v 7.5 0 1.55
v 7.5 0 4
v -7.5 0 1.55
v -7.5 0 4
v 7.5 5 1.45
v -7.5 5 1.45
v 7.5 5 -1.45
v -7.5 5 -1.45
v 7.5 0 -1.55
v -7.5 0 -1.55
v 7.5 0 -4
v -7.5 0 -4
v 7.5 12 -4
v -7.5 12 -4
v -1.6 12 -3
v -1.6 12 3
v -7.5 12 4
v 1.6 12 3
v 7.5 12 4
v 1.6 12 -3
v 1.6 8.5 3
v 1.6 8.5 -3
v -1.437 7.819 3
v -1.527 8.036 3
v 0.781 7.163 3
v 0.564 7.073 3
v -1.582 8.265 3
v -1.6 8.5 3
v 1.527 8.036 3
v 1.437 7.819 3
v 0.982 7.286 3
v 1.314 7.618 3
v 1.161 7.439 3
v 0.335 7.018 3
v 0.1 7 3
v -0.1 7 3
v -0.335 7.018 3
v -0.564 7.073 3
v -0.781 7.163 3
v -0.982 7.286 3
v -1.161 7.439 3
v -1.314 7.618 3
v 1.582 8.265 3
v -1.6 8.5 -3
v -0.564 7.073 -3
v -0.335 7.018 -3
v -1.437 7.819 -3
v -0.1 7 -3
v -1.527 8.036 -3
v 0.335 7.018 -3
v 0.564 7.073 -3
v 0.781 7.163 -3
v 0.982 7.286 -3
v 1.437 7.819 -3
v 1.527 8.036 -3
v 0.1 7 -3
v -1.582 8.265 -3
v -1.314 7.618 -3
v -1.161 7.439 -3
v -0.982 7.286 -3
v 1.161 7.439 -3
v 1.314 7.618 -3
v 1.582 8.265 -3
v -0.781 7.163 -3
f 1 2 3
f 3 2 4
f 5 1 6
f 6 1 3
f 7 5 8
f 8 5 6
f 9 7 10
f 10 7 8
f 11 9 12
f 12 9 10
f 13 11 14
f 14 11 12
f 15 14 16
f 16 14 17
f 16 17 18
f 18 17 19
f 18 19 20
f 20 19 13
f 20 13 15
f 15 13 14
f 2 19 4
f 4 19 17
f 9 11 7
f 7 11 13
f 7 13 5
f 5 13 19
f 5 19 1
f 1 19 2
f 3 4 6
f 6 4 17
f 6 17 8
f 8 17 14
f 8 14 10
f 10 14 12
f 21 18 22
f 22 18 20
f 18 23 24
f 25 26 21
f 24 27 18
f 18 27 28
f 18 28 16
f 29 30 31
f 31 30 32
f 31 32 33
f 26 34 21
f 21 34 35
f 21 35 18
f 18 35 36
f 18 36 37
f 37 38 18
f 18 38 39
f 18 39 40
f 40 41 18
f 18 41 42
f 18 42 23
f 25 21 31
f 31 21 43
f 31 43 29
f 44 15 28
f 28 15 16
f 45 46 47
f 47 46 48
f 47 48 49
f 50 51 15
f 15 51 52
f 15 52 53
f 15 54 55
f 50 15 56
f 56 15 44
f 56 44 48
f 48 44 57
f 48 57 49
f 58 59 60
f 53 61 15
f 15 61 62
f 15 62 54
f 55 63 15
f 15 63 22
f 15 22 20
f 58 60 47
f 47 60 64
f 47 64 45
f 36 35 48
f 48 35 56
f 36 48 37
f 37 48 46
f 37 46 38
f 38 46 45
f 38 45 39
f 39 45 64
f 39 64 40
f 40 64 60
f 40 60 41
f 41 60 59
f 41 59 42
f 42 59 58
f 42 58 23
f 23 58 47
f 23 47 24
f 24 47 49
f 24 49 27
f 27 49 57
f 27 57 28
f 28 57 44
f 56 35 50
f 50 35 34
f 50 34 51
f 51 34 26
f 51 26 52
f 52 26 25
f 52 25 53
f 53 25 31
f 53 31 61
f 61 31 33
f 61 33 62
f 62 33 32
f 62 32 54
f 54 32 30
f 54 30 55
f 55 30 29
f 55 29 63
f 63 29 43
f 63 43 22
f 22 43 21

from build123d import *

# Parameters (mm, degrees)
BOSS_EXTRUDE1_DEPTH = 7.5
SKETCH2_W           = 3.2
SKETCH2_H           = 6
CUT_EXTRUDE1_DEPTH  = 5
FILLET1_R           = 1.5


with BuildPart() as part:
    # Sketch1 → Boss-Extrude1 (new body, symmetric)
    with BuildSketch(Plane(origin=(0, 0, 0), x_dir=(0, 0, -1), z_dir=(1, 0, 0))):
        Polygon((-1.55, 0), (-1.45, 5), (1.45, 5), (1.55, 0), (4, 0), (4, 12), (-4, 12), (-4, 0), align=None)
    extrude(amount=BOSS_EXTRUDE1_DEPTH, both=True)

    # Sketch2 → Cut-Extrude1 (cut)
    with BuildSketch(Plane(origin=(0, 12, 0), x_dir=(1, 0, 0), z_dir=(0, 1, 0))):
        Rectangle(SKETCH2_W, SKETCH2_H)
    extrude(amount=-CUT_EXTRUDE1_DEPTH, mode=Mode.SUBTRACT)

    # Fillet1
    fillet1_edges = [part.edges().sort_by_distance(p)[0] for p in [
        (1.6, 7, 0),
        (-1.6, 7, 0),
    ]]
    fillet(fillet1_edges, radius=FILLET1_R)


solid = part.part
